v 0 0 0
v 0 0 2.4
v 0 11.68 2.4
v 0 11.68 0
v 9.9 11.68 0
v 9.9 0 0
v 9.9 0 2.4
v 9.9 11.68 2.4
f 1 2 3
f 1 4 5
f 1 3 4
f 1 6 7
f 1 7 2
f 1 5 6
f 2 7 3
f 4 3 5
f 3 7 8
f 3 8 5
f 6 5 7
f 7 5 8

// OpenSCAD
/* Warning, this is a very basic generator with a lot of approximation 
input data : [TOLL, 8UW, 9.9x11.68x2.40mm, 8, , A, C04-00673A]
generated by com.zoubworld.electronics.cad.model3d.Basic
Date : Sun Feb 15 10:50:49 CET 2026
*/

//body
color("black")
translate([0,0,0])
cube([9.9,11.68,2.4], center=false);
